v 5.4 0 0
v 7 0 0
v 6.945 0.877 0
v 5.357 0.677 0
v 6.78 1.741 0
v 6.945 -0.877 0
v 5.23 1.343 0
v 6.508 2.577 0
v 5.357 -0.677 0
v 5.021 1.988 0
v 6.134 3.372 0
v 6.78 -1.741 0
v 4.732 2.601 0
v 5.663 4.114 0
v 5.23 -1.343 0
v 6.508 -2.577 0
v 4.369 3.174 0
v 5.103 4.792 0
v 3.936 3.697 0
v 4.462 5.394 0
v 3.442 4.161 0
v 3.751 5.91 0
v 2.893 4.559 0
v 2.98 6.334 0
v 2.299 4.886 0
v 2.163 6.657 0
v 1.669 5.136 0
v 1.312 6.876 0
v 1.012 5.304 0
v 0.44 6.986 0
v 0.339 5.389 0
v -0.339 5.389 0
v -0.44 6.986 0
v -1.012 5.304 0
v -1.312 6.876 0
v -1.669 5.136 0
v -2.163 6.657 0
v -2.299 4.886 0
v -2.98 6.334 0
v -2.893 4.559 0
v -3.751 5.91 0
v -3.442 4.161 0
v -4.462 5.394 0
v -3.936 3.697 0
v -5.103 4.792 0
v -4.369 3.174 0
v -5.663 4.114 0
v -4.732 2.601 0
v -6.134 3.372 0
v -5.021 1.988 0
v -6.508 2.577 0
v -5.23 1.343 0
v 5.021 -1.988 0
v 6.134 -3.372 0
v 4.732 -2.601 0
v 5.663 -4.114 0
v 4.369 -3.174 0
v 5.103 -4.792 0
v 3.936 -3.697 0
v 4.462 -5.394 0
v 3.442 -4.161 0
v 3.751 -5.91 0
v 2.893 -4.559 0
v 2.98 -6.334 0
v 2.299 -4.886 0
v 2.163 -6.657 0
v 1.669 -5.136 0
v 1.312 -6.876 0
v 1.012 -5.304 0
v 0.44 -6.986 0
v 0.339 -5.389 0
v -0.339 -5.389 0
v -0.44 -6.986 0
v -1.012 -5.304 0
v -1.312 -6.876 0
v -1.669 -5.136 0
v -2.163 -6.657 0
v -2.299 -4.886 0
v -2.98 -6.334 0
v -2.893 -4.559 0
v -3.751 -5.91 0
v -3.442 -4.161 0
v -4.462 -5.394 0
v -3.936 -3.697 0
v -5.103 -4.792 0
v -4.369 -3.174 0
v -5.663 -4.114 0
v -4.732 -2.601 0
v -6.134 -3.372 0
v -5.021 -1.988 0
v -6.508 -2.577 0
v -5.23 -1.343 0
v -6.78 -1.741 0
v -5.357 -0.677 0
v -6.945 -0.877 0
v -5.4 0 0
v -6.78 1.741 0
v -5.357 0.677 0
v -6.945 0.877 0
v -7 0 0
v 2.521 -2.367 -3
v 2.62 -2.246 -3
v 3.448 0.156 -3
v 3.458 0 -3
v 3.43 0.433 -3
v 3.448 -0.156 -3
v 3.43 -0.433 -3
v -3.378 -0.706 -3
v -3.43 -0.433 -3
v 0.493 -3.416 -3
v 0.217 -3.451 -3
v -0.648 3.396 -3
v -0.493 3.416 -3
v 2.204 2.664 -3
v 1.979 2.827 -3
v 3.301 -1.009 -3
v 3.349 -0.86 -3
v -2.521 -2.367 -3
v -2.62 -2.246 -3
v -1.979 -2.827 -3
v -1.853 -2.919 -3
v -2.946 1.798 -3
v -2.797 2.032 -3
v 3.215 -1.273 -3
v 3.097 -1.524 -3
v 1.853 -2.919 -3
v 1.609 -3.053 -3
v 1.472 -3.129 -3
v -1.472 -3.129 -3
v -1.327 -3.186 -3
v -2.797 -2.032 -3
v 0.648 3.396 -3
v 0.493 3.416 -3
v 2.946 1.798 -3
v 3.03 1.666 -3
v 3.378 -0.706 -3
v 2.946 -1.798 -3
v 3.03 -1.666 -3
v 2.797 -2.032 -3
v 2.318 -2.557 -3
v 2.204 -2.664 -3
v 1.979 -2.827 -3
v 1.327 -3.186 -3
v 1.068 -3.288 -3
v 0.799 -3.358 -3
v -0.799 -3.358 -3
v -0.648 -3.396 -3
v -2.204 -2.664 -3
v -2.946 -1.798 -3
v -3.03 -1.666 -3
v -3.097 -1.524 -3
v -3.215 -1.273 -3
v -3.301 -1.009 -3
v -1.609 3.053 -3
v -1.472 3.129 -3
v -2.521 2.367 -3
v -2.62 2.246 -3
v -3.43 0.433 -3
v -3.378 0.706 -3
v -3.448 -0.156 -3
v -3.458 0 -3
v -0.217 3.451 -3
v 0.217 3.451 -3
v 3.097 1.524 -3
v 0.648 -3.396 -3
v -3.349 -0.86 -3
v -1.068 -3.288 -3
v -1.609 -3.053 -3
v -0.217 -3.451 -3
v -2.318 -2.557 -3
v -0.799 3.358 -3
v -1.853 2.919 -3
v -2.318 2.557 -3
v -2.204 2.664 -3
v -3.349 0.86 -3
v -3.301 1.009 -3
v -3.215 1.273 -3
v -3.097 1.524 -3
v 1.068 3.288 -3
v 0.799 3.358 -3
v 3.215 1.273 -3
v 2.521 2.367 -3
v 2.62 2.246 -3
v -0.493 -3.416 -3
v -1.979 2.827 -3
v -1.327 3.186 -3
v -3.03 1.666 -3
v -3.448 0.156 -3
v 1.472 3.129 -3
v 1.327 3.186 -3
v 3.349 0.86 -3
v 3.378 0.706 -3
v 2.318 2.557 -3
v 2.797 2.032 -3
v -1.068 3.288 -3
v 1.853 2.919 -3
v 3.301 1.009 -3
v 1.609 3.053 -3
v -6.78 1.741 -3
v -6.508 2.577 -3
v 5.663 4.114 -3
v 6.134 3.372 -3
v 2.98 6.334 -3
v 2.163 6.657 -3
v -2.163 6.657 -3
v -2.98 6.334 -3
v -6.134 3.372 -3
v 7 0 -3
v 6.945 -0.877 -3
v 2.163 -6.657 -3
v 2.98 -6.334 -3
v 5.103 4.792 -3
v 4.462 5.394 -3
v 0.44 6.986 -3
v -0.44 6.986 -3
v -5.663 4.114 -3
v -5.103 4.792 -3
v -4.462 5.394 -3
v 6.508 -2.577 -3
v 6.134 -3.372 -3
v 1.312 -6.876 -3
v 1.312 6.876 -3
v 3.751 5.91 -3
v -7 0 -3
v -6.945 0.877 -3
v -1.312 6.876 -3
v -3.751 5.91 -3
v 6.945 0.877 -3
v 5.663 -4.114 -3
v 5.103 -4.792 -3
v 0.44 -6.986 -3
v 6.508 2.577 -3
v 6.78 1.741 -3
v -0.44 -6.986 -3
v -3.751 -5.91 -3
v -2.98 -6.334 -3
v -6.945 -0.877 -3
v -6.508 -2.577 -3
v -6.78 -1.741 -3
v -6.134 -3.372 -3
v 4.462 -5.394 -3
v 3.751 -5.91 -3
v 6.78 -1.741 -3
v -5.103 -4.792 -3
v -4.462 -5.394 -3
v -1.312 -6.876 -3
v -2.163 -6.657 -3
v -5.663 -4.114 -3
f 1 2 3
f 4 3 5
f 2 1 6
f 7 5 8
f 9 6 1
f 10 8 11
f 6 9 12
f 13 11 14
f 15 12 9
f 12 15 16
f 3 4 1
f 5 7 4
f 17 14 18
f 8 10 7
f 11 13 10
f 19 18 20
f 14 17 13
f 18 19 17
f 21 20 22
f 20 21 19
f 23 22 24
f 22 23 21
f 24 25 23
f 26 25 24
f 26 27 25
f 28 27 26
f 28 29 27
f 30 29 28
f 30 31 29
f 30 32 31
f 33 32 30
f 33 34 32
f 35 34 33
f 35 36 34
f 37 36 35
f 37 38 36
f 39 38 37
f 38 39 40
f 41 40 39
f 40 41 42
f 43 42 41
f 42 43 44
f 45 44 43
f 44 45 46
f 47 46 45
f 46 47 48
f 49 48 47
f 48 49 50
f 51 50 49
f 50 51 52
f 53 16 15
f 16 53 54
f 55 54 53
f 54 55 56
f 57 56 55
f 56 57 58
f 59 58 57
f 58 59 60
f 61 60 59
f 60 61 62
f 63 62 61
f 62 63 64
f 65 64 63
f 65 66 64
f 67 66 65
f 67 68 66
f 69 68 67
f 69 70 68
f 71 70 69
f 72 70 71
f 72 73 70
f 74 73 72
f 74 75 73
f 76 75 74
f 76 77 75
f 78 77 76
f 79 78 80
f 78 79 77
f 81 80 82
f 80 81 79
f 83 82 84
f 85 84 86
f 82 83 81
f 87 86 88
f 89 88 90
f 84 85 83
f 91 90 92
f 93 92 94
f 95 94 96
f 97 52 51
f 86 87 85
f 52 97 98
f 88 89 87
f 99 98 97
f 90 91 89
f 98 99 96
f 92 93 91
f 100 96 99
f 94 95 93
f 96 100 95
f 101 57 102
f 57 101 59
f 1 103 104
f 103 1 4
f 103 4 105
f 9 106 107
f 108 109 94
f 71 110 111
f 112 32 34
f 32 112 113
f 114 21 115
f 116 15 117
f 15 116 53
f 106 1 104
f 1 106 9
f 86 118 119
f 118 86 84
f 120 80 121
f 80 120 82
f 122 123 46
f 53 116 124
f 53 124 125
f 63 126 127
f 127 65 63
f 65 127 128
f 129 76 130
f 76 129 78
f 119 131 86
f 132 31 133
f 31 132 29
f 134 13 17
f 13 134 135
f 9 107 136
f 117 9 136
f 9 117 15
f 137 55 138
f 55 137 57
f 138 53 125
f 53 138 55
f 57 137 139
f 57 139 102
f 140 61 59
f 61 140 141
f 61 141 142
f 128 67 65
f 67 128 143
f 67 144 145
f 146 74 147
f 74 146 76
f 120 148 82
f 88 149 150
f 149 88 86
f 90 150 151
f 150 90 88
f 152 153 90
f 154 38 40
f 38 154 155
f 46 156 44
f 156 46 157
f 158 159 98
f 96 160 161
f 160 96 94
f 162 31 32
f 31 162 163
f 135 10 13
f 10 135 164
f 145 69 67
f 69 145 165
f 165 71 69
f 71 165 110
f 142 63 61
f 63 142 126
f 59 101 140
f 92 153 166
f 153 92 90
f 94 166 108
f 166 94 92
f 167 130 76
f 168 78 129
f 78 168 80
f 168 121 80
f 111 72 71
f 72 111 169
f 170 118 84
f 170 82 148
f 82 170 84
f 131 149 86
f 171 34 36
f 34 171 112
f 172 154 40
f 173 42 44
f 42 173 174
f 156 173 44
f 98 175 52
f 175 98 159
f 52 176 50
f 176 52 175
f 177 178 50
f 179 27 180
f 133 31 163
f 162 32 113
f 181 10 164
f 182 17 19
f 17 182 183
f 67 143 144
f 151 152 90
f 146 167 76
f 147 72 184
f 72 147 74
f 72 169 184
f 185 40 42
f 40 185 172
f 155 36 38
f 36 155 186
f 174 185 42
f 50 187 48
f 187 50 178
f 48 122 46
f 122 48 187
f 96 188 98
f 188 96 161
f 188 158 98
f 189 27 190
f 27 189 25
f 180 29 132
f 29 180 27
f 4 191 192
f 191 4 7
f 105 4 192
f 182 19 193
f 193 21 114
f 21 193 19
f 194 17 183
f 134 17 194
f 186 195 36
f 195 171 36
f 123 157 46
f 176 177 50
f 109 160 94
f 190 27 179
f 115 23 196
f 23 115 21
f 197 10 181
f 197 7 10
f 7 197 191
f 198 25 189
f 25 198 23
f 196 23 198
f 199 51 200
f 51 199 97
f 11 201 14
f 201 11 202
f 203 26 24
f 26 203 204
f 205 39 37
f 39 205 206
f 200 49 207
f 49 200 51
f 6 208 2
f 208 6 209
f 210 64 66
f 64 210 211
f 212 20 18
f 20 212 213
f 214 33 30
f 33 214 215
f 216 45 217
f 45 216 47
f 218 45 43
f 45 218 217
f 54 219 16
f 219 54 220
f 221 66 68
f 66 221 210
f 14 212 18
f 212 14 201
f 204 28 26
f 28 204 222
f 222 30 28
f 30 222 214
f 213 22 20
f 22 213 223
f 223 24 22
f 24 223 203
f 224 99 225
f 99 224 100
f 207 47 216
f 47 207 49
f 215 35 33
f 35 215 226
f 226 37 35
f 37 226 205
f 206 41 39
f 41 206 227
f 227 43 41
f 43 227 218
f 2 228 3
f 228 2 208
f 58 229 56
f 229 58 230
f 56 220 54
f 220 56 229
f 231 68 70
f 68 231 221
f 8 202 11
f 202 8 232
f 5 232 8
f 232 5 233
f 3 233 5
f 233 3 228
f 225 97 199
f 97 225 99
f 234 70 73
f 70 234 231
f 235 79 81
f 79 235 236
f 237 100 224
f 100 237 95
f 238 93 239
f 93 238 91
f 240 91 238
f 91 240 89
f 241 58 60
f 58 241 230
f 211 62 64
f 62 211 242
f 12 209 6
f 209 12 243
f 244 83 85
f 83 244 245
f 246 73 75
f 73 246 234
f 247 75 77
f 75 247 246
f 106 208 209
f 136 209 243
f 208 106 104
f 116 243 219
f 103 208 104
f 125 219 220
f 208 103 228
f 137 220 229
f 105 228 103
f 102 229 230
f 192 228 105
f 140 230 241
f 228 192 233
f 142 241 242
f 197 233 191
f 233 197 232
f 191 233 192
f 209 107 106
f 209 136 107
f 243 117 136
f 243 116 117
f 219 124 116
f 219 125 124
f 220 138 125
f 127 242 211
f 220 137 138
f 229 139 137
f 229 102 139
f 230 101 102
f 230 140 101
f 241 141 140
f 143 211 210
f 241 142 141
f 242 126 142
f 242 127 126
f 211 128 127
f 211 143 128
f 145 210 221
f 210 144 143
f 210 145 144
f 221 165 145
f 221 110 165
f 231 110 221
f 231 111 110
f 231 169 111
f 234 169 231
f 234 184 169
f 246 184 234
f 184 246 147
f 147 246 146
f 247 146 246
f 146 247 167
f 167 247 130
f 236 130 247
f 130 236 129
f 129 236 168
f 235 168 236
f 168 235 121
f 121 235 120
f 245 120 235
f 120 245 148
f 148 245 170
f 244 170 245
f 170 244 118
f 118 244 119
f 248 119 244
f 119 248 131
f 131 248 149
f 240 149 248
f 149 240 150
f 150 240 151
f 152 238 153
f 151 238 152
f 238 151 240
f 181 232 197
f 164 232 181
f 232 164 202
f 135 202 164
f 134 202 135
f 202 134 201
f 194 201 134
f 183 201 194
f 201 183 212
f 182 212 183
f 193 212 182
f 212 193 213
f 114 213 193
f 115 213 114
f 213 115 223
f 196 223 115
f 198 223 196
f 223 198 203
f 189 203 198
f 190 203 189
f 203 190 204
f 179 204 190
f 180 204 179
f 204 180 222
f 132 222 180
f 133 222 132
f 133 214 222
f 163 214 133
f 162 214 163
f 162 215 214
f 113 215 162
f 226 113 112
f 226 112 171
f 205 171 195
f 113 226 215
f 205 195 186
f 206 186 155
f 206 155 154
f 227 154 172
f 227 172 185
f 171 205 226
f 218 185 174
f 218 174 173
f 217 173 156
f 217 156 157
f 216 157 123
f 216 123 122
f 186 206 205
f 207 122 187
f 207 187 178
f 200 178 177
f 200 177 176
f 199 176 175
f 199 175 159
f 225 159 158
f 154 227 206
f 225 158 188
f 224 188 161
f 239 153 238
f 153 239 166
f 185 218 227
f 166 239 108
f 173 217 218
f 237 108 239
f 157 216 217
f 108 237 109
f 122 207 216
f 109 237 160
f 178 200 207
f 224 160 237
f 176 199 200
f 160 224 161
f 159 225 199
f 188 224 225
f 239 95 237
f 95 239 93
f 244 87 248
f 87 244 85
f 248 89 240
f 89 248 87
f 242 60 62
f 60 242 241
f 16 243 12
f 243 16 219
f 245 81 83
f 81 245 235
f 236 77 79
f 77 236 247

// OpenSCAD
$fn = 50;


difference() {
	union() {
		translate(v = [0, 0, -3.0000000000]) {
			cylinder(h = 3, r = 7.0000000000);
		}
		cylinder(h = 0, r = 10.0000000000);
	}
	union() {
		translate(v = [0, 0, 0]) {
			rotate(a = [0, 0, 0]) {
				difference() {
					union() {
						#translate(v = [0, 0, -3.0000000000]) {
							cylinder(h = 3, r = 2.6000000000);
						}
						#translate(v = [0, 0, -3.9000000000]) {
							cylinder(h = 3.9000000000, r1 = 2.8750000000, r2 = 5.4000000000);
						}
						#translate(v = [0, 0, -3.0000000000]) {
							cylinder(h = 3, r = 2.8750000000);
						}
						#translate(v = [0, 0, -3.0000000000]) {
							cylinder(h = 3, r = 2.6000000000);
						}
					}
					union();
				}
			}
		}
	}
}
